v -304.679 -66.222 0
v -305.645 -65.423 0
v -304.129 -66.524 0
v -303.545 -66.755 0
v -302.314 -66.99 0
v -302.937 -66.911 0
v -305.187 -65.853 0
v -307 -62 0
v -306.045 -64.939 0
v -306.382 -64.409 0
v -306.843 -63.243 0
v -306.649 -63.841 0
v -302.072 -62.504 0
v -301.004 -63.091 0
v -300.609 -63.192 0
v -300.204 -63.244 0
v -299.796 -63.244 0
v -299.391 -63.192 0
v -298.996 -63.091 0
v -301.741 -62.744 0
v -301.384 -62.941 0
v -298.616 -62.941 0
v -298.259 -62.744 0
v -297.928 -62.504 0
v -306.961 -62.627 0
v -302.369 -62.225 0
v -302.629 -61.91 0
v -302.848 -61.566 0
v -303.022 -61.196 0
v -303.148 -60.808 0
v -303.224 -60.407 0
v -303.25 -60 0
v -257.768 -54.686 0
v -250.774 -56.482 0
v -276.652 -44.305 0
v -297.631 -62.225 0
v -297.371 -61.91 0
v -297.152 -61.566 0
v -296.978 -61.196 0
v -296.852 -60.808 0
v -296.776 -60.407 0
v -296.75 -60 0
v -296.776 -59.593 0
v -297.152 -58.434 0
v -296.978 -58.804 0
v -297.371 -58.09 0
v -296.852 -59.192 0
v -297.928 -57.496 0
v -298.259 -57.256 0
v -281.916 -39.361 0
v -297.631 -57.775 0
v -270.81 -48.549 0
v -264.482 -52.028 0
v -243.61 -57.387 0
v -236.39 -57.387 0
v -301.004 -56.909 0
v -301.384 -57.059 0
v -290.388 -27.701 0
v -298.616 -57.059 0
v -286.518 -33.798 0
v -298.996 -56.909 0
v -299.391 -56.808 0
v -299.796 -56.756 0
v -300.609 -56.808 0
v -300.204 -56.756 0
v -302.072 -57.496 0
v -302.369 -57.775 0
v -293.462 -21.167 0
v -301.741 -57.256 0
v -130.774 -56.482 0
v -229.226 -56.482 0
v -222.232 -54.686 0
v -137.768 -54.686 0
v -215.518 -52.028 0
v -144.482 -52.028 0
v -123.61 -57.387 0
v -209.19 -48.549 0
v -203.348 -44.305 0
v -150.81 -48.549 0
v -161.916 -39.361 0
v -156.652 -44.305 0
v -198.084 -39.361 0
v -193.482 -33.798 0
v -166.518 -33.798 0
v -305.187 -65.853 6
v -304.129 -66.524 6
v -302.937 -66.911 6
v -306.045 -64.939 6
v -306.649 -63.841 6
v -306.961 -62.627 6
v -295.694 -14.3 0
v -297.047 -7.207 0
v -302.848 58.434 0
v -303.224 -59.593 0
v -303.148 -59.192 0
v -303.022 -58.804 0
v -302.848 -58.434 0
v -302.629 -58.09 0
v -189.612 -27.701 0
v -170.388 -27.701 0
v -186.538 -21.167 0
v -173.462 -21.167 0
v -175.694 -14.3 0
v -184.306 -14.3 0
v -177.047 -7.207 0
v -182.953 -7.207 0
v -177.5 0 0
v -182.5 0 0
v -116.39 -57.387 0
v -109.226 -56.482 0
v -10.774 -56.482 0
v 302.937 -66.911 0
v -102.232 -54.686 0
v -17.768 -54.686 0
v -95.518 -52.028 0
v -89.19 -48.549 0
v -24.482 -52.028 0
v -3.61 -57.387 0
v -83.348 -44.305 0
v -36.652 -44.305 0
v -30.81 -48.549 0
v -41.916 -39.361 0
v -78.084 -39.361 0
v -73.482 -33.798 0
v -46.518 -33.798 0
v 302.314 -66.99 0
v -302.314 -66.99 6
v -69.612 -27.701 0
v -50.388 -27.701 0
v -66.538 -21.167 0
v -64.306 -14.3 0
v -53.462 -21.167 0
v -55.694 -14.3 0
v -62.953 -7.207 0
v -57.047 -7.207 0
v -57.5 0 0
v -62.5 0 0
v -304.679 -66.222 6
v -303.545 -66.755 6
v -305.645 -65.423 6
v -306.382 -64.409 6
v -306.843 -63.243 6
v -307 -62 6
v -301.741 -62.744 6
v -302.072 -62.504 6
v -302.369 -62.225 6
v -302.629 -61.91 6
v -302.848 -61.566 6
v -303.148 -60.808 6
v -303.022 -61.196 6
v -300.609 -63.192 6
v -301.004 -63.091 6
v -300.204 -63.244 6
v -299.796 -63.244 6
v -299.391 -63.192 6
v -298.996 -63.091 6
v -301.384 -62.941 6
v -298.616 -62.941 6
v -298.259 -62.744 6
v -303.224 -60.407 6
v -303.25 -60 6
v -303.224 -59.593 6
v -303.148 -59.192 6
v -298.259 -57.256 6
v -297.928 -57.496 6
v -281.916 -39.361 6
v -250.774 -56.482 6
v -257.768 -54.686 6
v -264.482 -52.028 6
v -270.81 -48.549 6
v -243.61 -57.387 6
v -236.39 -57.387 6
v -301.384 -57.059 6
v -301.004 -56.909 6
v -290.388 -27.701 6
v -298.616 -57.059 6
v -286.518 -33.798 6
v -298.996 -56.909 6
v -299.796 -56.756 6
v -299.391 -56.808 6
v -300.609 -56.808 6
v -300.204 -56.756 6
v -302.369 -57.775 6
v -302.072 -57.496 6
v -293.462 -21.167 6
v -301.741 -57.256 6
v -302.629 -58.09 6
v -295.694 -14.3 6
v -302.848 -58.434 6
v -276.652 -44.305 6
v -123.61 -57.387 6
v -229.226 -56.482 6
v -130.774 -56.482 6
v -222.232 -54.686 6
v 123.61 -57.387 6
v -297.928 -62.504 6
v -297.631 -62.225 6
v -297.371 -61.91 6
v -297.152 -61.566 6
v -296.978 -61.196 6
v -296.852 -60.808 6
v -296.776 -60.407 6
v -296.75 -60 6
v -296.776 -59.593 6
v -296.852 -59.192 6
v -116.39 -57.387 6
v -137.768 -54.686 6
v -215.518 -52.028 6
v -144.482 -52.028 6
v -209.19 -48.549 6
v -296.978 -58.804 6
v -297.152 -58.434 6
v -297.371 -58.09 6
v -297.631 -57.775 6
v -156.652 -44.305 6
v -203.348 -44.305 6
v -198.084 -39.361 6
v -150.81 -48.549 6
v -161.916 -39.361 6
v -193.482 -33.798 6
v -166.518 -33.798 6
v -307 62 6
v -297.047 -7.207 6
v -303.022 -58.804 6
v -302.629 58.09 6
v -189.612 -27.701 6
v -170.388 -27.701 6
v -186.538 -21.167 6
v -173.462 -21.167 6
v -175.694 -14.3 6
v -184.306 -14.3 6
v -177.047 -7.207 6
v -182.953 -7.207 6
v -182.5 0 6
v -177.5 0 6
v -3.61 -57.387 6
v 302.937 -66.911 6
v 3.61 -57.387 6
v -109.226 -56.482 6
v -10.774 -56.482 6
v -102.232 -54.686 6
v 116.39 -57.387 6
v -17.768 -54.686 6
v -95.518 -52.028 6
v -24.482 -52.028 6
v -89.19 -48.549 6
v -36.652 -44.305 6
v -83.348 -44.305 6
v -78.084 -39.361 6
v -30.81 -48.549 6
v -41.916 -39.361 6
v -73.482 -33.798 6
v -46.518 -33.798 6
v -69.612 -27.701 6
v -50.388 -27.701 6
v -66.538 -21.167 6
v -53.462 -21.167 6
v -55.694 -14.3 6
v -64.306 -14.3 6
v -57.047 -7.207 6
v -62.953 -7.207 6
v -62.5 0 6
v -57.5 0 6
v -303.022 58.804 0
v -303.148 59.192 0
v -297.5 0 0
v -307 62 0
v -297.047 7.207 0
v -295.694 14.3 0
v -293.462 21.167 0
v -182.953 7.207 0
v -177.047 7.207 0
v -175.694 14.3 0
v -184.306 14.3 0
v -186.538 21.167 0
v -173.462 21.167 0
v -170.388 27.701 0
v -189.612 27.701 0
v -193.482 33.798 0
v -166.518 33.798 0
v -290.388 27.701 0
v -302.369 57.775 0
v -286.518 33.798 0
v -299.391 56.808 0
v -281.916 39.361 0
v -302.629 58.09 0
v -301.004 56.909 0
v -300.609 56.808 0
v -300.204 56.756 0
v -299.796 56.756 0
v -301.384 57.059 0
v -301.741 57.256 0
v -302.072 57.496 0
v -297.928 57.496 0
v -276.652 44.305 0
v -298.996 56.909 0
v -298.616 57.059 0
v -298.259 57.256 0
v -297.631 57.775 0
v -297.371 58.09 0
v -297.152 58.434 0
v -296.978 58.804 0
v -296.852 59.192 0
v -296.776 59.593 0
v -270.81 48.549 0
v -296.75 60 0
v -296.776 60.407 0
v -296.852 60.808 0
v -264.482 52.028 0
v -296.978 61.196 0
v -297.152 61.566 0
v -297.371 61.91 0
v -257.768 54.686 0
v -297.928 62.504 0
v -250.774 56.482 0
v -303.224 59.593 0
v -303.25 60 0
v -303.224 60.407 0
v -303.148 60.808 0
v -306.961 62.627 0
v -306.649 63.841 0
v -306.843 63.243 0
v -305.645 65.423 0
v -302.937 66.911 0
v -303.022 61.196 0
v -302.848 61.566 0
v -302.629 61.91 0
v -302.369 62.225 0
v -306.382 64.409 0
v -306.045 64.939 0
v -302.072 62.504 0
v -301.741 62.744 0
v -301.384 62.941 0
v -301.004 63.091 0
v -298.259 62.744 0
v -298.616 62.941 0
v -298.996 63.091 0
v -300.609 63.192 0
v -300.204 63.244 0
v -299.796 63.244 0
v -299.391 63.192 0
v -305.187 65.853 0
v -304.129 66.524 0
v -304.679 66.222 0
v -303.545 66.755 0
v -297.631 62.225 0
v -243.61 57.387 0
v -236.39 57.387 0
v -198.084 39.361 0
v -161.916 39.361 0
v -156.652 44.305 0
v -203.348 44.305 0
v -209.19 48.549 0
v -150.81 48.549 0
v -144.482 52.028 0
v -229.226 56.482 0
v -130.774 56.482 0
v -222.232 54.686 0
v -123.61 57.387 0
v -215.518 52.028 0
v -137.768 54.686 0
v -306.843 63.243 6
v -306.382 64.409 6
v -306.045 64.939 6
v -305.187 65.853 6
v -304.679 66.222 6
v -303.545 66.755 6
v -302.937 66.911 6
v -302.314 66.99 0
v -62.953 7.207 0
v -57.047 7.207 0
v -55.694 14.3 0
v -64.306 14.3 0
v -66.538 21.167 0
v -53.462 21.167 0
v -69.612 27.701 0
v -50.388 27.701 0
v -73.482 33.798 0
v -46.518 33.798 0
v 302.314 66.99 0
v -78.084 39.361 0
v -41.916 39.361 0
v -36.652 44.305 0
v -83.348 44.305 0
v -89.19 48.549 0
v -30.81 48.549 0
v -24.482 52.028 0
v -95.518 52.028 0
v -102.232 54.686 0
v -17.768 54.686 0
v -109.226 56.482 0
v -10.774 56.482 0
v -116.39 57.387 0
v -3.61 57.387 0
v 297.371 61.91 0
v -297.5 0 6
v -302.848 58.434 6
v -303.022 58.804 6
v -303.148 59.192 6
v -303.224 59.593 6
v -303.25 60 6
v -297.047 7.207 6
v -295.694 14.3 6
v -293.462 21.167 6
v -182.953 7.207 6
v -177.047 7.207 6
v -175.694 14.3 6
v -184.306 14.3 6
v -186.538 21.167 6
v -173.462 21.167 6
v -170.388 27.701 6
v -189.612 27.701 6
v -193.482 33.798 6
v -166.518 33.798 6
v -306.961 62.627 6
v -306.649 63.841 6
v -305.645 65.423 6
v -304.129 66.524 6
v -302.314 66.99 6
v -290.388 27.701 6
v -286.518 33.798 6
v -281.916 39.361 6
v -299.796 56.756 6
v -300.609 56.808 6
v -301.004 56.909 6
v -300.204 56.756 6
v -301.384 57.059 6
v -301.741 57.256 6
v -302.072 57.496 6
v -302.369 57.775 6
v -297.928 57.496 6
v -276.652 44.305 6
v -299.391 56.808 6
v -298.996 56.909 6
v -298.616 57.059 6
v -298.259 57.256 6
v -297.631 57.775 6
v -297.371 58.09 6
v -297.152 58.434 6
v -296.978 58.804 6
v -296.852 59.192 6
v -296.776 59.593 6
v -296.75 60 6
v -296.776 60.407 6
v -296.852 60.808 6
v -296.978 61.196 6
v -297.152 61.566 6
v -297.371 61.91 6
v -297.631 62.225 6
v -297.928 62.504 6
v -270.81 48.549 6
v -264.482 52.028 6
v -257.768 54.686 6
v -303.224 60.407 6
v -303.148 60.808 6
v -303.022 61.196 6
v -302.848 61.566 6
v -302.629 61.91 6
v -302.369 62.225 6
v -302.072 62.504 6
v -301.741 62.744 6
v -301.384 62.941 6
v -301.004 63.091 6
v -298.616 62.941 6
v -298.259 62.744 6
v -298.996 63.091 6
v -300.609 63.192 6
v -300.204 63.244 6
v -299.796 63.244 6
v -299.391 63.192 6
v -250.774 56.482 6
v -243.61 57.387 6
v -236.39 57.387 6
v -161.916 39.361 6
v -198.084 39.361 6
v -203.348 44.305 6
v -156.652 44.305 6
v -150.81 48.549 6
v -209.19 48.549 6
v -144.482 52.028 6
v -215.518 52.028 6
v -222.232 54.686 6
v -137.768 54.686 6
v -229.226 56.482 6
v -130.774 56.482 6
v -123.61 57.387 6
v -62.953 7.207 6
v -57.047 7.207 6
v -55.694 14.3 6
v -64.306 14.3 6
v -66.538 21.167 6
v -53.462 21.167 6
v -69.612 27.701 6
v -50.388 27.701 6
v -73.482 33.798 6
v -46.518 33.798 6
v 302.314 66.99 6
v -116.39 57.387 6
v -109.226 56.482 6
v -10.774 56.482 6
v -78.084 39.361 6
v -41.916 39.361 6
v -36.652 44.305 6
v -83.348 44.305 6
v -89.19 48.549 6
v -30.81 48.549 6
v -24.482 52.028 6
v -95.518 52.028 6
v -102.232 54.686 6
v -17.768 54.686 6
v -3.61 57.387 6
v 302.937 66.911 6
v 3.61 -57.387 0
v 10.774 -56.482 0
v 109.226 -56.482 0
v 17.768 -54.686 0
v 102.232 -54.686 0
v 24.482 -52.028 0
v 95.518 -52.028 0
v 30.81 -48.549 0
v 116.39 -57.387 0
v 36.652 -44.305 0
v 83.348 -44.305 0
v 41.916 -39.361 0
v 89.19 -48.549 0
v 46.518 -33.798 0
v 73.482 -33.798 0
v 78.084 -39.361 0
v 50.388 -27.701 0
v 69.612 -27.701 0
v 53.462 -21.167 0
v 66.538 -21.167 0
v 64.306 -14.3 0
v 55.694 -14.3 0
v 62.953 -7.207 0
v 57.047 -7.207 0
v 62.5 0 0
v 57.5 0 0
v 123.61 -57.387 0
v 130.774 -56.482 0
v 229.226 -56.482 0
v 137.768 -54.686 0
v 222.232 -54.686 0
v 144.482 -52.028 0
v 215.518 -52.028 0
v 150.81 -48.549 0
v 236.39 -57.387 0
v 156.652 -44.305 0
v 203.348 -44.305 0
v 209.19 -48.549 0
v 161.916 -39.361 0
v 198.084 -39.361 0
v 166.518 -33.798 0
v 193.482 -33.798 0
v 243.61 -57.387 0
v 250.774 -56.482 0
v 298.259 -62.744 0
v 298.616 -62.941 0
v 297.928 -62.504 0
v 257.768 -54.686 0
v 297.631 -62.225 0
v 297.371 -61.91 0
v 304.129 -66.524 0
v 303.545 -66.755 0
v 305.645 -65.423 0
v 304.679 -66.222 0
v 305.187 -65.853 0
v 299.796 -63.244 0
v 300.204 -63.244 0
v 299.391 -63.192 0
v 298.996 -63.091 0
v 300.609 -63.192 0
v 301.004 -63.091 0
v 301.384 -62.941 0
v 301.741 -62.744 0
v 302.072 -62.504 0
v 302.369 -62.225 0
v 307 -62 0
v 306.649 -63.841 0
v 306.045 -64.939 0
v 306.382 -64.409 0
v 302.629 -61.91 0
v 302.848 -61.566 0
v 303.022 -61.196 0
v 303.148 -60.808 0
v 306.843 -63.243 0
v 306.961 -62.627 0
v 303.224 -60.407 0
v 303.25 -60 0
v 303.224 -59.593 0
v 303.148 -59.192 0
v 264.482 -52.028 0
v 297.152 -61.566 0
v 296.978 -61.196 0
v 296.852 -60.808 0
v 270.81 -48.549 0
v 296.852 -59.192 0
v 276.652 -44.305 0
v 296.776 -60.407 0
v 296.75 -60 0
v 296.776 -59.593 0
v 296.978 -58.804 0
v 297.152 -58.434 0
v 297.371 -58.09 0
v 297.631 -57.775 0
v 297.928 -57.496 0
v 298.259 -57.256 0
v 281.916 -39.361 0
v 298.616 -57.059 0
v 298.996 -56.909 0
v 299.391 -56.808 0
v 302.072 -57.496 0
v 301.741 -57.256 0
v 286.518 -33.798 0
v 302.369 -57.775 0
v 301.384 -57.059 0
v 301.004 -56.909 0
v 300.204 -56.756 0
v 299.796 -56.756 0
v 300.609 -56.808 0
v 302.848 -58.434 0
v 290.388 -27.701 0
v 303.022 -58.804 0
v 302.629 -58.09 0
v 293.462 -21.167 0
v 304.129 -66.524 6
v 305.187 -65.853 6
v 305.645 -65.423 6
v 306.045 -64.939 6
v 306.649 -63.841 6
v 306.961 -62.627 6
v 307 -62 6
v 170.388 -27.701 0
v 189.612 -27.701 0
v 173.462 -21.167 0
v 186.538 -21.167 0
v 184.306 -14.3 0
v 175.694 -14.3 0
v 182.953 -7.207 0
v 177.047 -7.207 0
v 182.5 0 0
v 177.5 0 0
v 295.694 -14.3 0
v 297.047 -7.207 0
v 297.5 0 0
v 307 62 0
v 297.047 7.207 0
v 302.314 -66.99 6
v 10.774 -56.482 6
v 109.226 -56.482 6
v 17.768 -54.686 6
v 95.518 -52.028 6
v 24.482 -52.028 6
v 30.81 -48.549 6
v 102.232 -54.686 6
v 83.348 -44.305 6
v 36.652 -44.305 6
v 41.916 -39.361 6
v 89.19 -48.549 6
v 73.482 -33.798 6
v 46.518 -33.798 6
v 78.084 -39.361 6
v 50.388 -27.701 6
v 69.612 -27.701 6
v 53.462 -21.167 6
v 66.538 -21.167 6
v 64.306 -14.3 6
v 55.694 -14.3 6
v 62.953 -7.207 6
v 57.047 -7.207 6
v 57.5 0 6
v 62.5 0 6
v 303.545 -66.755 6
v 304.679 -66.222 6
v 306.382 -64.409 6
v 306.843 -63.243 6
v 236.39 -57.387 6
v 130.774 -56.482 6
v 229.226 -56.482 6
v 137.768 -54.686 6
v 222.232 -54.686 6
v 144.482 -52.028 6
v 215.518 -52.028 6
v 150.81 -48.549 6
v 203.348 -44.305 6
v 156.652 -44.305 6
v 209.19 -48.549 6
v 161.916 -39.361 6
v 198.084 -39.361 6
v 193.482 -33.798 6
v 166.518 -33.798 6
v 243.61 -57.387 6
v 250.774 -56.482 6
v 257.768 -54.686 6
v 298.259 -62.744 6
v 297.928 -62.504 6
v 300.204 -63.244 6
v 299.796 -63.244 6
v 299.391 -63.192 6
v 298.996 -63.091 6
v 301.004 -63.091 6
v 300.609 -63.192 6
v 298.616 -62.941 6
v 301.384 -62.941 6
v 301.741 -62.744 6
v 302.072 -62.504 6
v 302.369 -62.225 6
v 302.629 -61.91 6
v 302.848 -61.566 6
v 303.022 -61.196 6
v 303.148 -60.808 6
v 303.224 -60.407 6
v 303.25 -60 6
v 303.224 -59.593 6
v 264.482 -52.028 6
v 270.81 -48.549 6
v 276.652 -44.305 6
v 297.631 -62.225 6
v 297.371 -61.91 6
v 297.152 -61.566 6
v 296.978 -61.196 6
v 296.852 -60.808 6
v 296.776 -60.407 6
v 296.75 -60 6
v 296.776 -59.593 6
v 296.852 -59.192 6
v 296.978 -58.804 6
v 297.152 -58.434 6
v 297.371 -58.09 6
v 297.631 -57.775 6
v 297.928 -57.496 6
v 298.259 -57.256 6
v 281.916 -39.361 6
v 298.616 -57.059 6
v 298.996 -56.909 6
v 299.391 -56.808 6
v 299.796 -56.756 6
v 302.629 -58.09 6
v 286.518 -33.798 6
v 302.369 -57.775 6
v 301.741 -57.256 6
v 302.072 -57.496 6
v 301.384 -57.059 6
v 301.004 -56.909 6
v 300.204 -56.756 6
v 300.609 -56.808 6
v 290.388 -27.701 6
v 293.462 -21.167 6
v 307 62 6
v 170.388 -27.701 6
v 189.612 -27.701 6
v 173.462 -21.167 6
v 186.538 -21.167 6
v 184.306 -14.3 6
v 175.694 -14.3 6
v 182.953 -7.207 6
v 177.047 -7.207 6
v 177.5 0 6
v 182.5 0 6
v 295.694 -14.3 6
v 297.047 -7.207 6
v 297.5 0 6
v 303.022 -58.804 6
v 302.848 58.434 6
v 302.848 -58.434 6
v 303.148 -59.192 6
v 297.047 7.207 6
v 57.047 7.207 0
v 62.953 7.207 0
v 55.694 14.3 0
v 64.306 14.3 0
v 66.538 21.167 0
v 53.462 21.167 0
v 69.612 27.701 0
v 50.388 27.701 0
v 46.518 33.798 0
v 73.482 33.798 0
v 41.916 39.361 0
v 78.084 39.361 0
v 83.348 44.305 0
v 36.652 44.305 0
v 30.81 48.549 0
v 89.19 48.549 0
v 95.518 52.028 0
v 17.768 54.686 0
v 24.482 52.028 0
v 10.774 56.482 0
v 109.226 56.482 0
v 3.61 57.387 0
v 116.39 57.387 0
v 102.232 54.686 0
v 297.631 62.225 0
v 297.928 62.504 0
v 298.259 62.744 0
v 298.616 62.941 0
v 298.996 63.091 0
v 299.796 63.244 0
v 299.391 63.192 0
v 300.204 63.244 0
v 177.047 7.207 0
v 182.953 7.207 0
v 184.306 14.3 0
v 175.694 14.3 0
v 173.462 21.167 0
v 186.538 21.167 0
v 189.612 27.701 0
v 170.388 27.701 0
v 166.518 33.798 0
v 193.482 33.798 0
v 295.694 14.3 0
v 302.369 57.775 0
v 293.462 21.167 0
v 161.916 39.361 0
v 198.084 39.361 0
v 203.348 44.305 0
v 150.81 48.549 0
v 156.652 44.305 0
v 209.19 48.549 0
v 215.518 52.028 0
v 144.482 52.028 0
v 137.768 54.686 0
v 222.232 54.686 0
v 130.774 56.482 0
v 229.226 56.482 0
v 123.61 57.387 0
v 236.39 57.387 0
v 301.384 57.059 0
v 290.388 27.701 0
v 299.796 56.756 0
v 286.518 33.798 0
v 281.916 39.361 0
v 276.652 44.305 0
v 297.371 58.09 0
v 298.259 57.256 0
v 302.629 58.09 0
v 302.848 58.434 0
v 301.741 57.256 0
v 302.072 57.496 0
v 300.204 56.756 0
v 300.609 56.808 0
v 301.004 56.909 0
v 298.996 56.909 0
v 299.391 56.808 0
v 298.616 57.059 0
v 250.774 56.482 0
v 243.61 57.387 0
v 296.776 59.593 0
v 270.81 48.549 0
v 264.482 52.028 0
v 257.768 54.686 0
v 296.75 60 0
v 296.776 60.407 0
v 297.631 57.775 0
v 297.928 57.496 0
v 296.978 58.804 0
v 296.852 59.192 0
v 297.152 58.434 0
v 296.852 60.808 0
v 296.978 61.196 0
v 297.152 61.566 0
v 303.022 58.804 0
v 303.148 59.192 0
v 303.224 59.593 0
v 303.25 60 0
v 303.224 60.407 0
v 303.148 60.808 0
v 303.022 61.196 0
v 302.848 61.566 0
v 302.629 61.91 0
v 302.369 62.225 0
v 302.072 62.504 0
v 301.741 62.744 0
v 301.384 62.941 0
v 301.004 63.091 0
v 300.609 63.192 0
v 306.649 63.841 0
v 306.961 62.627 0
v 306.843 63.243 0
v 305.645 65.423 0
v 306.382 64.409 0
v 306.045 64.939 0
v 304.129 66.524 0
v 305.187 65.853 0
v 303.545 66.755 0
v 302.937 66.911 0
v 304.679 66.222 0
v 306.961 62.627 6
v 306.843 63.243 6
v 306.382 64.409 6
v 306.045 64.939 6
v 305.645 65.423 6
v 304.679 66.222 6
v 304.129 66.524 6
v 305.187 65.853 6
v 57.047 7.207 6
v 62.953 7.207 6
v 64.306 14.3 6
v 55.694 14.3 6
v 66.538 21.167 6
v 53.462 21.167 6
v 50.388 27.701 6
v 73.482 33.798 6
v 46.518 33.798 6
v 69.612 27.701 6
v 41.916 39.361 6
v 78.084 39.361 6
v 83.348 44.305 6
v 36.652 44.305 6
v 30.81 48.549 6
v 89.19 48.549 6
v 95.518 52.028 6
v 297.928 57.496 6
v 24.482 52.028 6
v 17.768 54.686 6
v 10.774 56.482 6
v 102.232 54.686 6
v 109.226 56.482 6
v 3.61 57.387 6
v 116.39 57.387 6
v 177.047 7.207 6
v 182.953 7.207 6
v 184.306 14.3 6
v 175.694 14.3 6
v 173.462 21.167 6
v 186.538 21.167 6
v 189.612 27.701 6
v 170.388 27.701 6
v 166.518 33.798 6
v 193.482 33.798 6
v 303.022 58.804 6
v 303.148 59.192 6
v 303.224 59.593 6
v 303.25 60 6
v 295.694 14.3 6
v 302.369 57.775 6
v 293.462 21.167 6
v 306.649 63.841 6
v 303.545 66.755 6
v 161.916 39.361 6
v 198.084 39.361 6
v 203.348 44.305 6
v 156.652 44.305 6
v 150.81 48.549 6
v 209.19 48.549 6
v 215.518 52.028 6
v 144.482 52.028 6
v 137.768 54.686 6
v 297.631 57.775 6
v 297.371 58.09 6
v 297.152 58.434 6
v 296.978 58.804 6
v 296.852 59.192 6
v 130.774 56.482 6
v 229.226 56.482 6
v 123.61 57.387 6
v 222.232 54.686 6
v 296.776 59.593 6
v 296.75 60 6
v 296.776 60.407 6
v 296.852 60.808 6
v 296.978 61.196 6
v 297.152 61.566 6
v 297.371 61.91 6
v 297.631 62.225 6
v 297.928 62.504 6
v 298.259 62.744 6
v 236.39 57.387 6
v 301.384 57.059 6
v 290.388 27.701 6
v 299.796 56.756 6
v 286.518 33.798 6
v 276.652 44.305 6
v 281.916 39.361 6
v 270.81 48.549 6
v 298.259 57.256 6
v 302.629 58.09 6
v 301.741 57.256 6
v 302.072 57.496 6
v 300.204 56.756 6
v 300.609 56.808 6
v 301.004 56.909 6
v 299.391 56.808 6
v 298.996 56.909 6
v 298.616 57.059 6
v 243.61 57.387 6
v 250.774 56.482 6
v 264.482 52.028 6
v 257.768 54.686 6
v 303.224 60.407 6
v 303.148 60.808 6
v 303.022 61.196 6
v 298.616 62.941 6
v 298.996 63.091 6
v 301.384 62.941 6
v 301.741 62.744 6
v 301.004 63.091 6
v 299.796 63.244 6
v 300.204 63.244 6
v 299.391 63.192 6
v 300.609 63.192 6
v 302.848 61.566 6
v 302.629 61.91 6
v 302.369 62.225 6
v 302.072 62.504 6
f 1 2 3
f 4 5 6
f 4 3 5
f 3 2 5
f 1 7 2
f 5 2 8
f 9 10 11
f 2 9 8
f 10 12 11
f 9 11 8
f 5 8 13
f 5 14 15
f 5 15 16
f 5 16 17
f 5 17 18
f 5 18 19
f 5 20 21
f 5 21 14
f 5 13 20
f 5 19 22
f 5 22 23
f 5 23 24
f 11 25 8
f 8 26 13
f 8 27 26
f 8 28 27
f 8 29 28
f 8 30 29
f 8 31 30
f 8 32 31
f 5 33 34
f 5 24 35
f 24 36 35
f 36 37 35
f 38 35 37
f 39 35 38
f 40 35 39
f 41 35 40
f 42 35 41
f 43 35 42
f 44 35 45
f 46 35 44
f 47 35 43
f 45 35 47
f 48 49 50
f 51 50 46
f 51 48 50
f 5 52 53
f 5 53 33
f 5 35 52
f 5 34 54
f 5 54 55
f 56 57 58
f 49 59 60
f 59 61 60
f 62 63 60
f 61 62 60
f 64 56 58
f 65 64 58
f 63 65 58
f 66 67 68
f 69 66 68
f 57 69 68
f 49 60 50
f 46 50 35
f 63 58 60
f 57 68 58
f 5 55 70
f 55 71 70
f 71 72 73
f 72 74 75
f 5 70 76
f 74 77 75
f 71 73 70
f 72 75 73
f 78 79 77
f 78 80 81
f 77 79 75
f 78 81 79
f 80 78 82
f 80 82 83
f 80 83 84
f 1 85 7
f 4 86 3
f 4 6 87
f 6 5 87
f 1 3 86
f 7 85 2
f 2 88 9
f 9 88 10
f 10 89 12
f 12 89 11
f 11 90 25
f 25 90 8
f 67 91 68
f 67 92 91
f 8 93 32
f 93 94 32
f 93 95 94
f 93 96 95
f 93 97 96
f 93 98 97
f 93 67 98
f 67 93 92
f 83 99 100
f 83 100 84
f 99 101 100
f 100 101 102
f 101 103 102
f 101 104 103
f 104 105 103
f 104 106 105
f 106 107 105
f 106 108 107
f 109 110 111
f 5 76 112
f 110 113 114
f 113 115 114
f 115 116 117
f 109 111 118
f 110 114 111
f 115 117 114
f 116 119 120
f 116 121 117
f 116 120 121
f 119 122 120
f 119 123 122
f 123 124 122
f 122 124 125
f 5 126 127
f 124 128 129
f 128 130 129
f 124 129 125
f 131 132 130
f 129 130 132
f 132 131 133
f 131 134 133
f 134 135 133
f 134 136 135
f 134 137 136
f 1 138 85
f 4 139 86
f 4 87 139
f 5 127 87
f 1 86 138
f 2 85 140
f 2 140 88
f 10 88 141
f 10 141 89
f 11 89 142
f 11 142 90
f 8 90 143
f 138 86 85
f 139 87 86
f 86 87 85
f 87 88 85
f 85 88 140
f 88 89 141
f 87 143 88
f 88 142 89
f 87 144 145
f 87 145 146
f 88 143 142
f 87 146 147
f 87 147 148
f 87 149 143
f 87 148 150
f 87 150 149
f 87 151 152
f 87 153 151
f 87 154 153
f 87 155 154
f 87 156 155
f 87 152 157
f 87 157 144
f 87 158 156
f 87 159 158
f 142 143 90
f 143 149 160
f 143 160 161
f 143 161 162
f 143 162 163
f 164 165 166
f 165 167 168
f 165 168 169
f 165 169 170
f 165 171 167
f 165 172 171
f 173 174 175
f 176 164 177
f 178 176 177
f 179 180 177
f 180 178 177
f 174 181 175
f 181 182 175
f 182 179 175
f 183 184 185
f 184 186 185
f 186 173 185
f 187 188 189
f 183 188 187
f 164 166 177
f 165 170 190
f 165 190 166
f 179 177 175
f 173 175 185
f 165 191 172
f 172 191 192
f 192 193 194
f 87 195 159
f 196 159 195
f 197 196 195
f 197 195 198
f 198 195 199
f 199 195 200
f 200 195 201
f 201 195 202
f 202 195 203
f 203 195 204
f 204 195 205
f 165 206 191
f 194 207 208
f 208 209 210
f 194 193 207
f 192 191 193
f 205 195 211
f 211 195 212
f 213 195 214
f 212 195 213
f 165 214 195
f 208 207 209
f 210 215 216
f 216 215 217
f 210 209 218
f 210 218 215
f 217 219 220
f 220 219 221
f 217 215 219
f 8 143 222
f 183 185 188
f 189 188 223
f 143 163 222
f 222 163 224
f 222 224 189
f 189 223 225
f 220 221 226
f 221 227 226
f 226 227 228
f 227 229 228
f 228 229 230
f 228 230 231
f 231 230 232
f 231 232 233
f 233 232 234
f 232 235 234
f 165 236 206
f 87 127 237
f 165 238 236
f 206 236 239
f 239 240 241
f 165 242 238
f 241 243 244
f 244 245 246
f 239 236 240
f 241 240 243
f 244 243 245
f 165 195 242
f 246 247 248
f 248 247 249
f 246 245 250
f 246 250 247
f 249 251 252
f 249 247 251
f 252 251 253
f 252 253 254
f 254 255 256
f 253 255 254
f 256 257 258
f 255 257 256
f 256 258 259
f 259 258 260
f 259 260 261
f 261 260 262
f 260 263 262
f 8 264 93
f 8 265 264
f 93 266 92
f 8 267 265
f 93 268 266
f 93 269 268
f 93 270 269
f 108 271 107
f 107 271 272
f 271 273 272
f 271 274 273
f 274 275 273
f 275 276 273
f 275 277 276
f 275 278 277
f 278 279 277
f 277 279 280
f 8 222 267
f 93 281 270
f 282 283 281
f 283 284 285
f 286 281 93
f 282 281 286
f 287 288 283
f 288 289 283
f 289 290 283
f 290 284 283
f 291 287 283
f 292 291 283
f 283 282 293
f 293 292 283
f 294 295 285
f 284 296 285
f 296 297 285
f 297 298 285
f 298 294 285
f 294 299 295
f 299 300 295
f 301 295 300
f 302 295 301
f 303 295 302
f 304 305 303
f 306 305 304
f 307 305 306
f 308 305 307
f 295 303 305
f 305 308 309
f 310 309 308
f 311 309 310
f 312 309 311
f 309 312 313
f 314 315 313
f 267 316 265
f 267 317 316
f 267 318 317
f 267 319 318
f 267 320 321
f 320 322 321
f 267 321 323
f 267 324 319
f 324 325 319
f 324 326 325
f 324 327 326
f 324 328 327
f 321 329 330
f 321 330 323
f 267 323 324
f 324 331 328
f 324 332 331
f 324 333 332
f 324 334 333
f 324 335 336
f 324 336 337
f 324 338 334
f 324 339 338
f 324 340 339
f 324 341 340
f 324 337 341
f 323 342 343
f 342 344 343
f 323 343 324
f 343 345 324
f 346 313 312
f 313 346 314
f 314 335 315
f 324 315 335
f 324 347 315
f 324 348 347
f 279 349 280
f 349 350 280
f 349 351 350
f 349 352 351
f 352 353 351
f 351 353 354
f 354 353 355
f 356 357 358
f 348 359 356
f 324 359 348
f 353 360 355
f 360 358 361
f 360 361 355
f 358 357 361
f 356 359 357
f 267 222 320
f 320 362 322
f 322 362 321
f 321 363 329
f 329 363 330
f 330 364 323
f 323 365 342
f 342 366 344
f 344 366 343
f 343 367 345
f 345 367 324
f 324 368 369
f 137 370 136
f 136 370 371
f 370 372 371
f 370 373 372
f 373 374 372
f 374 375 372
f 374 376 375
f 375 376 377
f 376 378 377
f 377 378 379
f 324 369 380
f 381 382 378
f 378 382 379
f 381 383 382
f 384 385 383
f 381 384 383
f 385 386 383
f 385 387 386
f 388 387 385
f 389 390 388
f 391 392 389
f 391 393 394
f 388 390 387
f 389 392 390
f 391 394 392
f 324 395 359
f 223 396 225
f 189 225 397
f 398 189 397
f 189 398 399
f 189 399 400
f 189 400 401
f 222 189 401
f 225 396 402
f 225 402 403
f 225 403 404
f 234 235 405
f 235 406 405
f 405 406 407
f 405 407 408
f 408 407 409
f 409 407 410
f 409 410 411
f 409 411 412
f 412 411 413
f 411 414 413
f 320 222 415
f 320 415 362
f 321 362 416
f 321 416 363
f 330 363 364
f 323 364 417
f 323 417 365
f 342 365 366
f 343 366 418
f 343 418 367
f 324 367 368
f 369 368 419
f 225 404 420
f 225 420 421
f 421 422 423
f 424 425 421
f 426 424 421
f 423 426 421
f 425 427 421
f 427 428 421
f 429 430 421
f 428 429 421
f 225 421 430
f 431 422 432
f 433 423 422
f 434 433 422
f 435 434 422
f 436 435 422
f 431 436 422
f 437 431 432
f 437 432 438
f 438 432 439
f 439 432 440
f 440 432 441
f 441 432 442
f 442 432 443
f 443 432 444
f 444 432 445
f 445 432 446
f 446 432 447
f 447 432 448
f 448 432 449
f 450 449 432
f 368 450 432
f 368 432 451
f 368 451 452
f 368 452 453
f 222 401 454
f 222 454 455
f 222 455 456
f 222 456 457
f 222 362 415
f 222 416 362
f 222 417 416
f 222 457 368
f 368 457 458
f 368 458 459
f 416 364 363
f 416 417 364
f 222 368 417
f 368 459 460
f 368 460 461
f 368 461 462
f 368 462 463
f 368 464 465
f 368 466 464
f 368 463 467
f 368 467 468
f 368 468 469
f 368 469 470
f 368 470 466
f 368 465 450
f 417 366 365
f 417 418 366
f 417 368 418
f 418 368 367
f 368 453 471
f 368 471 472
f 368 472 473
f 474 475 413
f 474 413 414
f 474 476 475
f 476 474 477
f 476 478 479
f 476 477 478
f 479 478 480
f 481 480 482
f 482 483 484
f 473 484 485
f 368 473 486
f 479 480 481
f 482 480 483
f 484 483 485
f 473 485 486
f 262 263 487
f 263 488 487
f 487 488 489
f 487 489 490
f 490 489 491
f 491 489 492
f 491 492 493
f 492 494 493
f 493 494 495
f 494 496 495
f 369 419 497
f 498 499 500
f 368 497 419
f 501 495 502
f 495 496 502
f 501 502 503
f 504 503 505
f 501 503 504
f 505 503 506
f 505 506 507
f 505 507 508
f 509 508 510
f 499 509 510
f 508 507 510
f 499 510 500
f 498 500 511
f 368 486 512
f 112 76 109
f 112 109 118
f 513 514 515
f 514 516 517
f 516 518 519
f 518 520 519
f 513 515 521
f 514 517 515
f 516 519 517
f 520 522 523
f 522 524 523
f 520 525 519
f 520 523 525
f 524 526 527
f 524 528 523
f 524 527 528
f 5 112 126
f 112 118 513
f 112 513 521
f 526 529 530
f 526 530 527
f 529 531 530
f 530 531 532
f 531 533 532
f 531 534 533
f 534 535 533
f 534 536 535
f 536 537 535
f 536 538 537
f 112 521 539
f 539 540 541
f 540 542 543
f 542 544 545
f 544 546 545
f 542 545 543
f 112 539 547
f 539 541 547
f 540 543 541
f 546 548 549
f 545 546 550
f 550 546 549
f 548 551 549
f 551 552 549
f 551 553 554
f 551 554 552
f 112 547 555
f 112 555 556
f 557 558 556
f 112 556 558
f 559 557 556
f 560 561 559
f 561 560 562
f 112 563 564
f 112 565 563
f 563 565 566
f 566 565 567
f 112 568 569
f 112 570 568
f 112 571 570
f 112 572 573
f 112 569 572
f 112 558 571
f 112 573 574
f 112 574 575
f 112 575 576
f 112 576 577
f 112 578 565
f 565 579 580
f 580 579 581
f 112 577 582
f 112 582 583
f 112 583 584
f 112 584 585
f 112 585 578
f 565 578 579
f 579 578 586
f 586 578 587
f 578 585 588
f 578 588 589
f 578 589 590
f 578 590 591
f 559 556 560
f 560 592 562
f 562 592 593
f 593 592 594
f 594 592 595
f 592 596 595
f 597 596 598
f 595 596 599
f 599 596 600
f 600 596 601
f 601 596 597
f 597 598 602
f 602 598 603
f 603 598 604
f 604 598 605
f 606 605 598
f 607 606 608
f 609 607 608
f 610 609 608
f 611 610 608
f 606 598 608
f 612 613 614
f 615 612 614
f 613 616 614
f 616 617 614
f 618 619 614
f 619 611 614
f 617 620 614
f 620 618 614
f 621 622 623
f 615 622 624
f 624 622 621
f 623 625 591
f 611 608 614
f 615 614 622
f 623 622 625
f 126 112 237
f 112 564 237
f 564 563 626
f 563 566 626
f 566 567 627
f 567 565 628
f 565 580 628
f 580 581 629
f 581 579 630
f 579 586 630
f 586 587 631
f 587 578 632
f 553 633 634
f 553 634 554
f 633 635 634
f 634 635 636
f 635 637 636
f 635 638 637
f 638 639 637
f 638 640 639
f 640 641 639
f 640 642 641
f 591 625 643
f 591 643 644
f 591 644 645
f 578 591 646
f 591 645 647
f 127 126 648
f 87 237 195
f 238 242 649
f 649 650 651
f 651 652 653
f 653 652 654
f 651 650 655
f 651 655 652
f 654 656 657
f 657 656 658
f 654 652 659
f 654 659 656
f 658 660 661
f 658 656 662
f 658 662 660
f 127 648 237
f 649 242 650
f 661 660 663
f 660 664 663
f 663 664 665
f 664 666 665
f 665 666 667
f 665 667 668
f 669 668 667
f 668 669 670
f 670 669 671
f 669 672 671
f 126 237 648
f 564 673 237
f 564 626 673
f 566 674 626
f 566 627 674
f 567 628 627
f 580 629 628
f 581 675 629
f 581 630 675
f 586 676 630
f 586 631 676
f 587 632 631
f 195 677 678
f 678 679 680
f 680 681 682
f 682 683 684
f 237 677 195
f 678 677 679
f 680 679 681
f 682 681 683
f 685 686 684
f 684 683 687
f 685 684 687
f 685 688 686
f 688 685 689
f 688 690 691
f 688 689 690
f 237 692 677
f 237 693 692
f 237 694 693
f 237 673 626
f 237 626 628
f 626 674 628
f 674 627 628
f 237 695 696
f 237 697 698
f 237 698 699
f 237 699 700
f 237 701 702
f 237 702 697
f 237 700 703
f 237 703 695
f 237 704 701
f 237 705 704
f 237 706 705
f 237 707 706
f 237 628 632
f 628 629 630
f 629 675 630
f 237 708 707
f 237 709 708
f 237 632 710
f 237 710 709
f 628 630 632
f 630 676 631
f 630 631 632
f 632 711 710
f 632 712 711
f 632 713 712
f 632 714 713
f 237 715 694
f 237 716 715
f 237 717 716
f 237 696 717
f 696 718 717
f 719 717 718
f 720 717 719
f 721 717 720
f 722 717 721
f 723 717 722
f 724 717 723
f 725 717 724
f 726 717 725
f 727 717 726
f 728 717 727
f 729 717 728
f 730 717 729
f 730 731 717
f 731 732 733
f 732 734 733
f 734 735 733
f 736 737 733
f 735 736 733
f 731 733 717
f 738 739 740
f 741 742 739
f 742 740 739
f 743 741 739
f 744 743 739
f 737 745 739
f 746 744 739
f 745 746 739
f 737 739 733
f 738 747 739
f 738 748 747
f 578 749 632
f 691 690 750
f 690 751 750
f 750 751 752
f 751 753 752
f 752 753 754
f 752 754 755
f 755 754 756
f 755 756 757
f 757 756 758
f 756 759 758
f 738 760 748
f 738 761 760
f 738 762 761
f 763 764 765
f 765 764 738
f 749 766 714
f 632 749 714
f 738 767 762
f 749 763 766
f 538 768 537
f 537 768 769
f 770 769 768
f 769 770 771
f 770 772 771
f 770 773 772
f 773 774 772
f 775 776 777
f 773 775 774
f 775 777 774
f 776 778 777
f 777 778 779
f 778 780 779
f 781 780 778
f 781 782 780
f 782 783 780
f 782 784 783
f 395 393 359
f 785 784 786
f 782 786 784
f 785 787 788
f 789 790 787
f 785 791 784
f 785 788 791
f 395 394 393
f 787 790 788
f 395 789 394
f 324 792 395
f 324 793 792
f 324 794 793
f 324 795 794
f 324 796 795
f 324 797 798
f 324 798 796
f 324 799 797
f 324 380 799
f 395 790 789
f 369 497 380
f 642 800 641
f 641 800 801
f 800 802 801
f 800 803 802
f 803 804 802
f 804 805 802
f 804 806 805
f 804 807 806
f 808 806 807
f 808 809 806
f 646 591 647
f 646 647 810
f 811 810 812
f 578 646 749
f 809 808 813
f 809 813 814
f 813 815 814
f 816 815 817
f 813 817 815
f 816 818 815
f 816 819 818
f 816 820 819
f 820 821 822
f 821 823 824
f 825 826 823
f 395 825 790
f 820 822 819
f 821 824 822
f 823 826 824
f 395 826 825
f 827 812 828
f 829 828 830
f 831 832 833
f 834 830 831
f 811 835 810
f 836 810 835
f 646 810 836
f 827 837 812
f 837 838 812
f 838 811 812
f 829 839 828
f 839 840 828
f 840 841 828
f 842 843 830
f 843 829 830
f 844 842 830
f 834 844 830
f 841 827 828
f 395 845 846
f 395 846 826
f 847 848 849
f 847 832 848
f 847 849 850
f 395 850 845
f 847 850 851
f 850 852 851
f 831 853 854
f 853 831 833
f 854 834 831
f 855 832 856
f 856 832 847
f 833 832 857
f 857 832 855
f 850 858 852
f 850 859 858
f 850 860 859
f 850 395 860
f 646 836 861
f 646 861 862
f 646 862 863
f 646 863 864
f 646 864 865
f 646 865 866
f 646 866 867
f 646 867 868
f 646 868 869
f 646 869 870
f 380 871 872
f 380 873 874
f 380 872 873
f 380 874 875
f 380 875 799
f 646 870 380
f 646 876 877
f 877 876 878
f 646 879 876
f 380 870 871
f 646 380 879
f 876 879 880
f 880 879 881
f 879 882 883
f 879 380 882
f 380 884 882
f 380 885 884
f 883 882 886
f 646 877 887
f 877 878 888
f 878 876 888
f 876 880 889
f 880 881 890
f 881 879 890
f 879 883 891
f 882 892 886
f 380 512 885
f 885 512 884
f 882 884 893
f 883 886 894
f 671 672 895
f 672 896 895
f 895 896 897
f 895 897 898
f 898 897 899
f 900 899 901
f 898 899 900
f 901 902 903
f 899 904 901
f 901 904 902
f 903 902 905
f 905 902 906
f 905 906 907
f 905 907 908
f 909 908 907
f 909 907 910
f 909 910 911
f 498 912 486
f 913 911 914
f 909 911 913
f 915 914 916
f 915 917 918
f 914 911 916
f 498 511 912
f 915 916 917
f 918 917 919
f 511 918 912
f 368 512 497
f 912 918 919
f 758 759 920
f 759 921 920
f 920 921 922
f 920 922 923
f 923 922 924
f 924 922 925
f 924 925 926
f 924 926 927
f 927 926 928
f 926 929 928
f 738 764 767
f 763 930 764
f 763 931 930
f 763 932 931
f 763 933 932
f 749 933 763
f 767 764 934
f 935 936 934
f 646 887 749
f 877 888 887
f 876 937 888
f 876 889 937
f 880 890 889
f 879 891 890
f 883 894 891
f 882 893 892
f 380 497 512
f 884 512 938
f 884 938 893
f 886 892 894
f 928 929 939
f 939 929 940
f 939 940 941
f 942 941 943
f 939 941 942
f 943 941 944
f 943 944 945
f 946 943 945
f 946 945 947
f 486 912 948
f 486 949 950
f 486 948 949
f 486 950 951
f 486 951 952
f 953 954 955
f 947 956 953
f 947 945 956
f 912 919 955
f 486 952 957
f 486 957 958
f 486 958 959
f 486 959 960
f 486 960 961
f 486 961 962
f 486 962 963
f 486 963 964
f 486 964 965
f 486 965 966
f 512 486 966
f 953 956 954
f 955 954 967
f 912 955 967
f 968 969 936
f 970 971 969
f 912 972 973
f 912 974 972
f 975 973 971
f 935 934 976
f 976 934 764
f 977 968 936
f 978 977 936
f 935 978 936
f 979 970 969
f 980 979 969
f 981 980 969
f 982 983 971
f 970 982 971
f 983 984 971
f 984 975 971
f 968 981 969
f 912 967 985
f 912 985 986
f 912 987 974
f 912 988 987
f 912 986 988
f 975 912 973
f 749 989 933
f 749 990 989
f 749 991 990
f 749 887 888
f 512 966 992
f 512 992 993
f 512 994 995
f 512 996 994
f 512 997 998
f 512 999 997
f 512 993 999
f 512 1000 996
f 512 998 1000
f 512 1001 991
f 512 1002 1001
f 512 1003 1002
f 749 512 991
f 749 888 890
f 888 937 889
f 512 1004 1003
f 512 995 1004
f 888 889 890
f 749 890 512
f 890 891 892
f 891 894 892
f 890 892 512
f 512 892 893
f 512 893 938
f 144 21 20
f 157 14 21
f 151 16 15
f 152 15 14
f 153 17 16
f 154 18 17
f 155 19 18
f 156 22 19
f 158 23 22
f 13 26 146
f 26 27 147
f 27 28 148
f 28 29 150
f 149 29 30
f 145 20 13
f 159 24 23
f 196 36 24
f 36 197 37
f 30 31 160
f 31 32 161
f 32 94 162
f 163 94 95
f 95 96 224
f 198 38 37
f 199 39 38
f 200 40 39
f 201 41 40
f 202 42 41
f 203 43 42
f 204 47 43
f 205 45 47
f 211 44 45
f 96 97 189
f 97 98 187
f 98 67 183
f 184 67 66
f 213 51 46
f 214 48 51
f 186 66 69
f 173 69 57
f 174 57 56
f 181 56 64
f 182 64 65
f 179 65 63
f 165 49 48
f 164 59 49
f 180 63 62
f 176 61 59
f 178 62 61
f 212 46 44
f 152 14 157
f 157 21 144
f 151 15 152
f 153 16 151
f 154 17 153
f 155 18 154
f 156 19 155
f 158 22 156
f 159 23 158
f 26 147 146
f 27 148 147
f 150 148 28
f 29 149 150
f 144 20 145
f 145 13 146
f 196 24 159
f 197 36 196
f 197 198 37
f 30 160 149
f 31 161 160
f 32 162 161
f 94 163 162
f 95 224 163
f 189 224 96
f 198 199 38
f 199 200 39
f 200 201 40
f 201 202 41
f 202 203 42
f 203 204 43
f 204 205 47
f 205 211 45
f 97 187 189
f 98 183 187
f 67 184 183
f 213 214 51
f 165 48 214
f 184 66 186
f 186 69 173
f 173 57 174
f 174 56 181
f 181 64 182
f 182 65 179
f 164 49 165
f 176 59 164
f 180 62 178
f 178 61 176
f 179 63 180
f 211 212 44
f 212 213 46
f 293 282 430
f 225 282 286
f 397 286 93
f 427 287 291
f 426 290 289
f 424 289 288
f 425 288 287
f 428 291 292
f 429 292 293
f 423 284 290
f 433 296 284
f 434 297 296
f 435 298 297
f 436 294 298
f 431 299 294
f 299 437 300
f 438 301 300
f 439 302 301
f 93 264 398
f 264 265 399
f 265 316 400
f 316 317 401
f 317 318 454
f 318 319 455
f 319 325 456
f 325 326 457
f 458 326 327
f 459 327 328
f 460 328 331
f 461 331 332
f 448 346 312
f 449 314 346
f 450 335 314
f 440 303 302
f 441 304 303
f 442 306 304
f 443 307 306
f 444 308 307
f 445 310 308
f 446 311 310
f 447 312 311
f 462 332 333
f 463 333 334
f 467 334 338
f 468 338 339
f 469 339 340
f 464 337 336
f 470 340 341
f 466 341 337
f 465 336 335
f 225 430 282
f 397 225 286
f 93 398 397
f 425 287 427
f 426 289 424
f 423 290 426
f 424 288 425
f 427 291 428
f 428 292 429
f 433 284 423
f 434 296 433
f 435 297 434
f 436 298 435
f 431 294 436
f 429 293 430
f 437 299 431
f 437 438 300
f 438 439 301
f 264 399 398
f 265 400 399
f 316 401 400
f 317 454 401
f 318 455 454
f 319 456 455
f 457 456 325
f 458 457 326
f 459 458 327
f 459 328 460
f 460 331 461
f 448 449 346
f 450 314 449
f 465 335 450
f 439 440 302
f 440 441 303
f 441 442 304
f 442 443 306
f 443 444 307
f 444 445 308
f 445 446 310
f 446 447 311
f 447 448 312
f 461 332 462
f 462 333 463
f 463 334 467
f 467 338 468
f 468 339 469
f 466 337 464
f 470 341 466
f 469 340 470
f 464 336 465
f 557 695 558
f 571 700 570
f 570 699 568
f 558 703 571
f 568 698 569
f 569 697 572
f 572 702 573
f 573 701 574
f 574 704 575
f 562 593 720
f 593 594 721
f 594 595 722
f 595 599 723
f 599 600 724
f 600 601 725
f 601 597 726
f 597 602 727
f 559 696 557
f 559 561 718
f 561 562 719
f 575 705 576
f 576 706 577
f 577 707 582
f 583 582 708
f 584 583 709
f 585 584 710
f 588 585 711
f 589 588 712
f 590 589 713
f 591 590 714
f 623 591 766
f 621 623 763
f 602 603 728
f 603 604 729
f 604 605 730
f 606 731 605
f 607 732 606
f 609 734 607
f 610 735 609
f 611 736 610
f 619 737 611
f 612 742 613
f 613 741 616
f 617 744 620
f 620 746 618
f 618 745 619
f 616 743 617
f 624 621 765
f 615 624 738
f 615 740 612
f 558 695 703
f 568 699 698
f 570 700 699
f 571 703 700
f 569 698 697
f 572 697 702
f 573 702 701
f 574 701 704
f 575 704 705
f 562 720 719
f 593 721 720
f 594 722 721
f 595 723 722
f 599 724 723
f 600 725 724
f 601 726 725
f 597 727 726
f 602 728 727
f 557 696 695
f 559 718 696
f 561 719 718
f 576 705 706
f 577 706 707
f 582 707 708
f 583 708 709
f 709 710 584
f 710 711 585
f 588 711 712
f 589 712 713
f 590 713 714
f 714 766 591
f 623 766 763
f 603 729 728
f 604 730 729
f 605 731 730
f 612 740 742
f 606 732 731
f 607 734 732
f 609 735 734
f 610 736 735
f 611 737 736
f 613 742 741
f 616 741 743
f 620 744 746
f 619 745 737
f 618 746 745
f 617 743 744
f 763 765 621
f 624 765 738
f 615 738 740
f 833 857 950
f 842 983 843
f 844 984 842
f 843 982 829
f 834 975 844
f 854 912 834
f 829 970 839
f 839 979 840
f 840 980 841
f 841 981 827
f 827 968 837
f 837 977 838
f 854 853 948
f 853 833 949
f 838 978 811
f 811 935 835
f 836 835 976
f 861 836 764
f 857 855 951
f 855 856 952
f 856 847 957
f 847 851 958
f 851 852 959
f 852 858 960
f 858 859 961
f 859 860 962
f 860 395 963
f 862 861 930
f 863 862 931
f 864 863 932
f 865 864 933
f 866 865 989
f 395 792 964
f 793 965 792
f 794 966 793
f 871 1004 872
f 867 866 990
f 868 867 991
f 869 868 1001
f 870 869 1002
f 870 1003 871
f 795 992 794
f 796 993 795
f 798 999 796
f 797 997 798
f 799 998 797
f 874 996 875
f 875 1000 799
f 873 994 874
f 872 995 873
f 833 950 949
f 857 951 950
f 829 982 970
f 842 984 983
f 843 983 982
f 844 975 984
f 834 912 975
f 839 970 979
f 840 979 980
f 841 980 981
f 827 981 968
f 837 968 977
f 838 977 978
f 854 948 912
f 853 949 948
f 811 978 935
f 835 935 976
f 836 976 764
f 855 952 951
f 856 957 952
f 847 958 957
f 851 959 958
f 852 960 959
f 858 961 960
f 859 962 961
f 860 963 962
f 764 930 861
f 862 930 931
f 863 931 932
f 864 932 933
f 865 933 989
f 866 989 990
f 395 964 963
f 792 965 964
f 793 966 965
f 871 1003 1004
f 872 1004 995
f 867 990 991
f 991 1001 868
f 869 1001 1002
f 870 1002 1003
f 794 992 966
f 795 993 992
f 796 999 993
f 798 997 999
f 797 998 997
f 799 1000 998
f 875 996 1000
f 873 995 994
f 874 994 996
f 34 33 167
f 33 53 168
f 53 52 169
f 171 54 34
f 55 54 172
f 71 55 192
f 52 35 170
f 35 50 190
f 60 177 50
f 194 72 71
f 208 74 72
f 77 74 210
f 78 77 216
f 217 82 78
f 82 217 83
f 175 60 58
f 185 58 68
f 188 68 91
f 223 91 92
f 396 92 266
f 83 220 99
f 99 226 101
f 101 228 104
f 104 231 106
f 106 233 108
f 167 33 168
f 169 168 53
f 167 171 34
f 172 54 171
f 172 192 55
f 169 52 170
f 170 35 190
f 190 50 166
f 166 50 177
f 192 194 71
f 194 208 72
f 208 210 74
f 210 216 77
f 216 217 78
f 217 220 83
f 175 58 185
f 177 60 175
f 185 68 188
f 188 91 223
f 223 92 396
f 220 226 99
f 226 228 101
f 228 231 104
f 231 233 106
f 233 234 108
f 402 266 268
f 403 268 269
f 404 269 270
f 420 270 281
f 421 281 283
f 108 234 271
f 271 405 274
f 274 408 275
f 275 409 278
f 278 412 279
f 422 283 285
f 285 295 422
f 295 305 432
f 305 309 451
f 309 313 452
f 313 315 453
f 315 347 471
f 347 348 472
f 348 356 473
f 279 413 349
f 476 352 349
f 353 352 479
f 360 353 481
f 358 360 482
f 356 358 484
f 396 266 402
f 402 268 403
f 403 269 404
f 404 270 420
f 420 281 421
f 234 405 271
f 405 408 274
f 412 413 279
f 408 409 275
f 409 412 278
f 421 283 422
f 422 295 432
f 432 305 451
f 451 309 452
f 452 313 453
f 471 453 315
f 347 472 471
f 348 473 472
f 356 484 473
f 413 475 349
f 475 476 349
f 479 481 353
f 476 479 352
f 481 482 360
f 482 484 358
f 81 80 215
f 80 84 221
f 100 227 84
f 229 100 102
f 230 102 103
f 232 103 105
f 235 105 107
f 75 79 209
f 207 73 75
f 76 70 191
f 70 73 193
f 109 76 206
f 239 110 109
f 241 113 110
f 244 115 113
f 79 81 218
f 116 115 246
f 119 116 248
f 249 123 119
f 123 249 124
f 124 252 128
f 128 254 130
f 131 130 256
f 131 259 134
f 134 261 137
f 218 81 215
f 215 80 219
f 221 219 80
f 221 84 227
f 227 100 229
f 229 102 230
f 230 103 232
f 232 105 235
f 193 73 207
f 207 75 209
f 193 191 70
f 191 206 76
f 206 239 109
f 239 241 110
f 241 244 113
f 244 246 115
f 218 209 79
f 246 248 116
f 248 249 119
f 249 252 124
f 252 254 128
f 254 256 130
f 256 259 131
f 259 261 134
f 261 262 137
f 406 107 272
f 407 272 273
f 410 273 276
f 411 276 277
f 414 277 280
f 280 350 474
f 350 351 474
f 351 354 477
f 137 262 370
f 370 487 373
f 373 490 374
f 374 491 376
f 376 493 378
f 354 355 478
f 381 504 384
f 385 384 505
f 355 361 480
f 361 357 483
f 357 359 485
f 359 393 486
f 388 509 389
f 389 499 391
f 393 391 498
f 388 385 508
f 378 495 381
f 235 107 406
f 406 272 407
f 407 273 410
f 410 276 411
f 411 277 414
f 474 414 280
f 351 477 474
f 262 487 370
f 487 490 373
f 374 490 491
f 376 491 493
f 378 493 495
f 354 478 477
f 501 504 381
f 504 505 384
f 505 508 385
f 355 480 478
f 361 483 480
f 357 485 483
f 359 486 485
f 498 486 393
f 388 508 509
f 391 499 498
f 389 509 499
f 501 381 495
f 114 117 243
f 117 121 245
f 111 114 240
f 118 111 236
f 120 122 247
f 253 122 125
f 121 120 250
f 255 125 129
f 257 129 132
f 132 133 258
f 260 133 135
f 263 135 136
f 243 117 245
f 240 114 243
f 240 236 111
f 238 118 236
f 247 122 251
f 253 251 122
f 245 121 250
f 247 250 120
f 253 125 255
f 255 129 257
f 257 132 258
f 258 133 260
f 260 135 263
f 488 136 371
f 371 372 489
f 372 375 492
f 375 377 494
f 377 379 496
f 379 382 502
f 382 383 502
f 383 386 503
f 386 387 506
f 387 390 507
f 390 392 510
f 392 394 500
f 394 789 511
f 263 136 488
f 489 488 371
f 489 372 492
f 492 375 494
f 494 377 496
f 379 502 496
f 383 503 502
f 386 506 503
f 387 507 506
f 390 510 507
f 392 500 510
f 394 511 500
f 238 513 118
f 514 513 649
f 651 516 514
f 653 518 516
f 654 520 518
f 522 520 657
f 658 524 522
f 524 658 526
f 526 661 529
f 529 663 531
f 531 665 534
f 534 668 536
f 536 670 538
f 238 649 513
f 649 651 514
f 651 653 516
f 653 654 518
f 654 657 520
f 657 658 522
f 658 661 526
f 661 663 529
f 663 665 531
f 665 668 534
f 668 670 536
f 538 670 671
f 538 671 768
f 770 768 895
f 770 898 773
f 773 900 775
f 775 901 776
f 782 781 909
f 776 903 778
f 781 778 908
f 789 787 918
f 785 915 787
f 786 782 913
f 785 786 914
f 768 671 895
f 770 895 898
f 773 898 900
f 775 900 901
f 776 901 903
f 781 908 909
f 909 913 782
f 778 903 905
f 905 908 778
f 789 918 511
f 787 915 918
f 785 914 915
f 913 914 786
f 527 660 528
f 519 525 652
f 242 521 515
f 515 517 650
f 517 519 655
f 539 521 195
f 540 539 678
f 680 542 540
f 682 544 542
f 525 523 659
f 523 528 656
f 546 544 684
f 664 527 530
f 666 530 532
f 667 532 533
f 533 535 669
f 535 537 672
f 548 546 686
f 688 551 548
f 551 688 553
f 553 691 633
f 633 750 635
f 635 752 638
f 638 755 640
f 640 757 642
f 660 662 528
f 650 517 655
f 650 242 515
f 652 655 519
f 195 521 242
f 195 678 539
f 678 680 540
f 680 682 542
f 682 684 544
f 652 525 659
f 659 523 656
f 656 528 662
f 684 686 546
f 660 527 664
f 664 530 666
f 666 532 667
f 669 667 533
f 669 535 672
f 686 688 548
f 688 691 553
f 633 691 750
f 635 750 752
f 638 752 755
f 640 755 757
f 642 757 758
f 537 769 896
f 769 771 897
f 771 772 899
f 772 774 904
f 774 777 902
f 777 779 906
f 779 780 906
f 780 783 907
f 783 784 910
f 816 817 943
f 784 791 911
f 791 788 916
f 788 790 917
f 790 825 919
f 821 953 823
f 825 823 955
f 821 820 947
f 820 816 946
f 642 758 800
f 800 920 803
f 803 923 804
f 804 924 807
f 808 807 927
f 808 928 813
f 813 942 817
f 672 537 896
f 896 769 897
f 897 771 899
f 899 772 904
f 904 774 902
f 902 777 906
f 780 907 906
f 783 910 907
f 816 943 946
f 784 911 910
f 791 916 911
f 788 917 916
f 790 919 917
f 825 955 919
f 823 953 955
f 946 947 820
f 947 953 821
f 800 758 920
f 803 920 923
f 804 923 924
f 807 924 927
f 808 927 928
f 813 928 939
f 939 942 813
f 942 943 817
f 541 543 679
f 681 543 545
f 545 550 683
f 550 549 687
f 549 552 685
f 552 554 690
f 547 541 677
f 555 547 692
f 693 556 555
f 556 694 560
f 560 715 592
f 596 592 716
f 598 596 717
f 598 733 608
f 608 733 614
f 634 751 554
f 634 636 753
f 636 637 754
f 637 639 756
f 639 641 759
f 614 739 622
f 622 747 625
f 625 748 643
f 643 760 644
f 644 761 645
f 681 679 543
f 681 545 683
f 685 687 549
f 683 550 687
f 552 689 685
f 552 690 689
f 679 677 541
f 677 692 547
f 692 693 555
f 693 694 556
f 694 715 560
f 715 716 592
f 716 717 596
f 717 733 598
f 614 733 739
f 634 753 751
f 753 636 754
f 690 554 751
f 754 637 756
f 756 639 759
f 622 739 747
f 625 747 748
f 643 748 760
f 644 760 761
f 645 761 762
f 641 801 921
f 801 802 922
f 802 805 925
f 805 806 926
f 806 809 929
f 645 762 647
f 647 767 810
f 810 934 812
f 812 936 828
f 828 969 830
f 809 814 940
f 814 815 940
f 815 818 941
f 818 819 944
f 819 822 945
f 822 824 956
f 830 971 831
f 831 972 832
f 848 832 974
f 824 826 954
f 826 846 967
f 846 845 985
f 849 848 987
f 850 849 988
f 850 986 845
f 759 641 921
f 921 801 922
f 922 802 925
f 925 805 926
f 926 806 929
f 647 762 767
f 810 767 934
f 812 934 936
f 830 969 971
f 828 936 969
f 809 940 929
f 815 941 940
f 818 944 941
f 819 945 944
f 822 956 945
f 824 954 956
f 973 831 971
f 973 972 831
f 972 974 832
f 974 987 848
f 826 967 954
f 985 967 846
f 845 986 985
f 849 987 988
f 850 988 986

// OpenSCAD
$fn = 50;

difference() {
	union() {
		hull() {
			translate(v = [-302.0, 62.0, 0]) {
				cylinder(h = 6, r = 5);
			}
			translate(v = [302.0, 62.0, 0]) {
				cylinder(h = 6, r = 5);
			}
			translate(v = [-302.0, -62.0, 0]) {
				cylinder(h = 6, r = 5);
			}
			translate(v = [302.0, -62.0, 0]) {
				cylinder(h = 6, r = 5);
			}
		}
	}
	union() {
		translate(v = [-300.0, -60.0, -100.0]) {
			cylinder(h = 200, r = 3.25);
		}
		translate(v = [-300.0, 60.0, -100.0]) {
			cylinder(h = 200, r = 3.25);
		}
		translate(v = [300.0, -60.0, -100.0]) {
			cylinder(h = 200, r = 3.25);
		}
		translate(v = [300.0, 60.0, -100.0]) {
			cylinder(h = 200, r = 3.25);
		}
		translate(v = [-300.0, -60.0, -100.0]) {
			cylinder(h = 200, r = 1.8);
		}
		translate(v = [-300.0, 60.0, -100.0]) {
			cylinder(h = 200, r = 1.8);
		}
		translate(v = [300.0, -60.0, -100.0]) {
			cylinder(h = 200, r = 1.8);
		}
		translate(v = [300.0, 60.0, -100.0]) {
			cylinder(h = 200, r = 1.8);
		}
		translate(v = [-240.0, 0, 0.0]) {
			cylinder(h = 6, r = 57.5);
		}
		translate(v = [-120.0, 0, 0.0]) {
			cylinder(h = 6, r = 57.5);
		}
		cylinder(h = 6, r = 57.5);
		translate(v = [120.0, 0, 0.0]) {
			cylinder(h = 6, r = 57.5);
		}
		translate(v = [240.0, 0, 0.0]) {
			cylinder(h = 6, r = 57.5);
		}
	}
}
